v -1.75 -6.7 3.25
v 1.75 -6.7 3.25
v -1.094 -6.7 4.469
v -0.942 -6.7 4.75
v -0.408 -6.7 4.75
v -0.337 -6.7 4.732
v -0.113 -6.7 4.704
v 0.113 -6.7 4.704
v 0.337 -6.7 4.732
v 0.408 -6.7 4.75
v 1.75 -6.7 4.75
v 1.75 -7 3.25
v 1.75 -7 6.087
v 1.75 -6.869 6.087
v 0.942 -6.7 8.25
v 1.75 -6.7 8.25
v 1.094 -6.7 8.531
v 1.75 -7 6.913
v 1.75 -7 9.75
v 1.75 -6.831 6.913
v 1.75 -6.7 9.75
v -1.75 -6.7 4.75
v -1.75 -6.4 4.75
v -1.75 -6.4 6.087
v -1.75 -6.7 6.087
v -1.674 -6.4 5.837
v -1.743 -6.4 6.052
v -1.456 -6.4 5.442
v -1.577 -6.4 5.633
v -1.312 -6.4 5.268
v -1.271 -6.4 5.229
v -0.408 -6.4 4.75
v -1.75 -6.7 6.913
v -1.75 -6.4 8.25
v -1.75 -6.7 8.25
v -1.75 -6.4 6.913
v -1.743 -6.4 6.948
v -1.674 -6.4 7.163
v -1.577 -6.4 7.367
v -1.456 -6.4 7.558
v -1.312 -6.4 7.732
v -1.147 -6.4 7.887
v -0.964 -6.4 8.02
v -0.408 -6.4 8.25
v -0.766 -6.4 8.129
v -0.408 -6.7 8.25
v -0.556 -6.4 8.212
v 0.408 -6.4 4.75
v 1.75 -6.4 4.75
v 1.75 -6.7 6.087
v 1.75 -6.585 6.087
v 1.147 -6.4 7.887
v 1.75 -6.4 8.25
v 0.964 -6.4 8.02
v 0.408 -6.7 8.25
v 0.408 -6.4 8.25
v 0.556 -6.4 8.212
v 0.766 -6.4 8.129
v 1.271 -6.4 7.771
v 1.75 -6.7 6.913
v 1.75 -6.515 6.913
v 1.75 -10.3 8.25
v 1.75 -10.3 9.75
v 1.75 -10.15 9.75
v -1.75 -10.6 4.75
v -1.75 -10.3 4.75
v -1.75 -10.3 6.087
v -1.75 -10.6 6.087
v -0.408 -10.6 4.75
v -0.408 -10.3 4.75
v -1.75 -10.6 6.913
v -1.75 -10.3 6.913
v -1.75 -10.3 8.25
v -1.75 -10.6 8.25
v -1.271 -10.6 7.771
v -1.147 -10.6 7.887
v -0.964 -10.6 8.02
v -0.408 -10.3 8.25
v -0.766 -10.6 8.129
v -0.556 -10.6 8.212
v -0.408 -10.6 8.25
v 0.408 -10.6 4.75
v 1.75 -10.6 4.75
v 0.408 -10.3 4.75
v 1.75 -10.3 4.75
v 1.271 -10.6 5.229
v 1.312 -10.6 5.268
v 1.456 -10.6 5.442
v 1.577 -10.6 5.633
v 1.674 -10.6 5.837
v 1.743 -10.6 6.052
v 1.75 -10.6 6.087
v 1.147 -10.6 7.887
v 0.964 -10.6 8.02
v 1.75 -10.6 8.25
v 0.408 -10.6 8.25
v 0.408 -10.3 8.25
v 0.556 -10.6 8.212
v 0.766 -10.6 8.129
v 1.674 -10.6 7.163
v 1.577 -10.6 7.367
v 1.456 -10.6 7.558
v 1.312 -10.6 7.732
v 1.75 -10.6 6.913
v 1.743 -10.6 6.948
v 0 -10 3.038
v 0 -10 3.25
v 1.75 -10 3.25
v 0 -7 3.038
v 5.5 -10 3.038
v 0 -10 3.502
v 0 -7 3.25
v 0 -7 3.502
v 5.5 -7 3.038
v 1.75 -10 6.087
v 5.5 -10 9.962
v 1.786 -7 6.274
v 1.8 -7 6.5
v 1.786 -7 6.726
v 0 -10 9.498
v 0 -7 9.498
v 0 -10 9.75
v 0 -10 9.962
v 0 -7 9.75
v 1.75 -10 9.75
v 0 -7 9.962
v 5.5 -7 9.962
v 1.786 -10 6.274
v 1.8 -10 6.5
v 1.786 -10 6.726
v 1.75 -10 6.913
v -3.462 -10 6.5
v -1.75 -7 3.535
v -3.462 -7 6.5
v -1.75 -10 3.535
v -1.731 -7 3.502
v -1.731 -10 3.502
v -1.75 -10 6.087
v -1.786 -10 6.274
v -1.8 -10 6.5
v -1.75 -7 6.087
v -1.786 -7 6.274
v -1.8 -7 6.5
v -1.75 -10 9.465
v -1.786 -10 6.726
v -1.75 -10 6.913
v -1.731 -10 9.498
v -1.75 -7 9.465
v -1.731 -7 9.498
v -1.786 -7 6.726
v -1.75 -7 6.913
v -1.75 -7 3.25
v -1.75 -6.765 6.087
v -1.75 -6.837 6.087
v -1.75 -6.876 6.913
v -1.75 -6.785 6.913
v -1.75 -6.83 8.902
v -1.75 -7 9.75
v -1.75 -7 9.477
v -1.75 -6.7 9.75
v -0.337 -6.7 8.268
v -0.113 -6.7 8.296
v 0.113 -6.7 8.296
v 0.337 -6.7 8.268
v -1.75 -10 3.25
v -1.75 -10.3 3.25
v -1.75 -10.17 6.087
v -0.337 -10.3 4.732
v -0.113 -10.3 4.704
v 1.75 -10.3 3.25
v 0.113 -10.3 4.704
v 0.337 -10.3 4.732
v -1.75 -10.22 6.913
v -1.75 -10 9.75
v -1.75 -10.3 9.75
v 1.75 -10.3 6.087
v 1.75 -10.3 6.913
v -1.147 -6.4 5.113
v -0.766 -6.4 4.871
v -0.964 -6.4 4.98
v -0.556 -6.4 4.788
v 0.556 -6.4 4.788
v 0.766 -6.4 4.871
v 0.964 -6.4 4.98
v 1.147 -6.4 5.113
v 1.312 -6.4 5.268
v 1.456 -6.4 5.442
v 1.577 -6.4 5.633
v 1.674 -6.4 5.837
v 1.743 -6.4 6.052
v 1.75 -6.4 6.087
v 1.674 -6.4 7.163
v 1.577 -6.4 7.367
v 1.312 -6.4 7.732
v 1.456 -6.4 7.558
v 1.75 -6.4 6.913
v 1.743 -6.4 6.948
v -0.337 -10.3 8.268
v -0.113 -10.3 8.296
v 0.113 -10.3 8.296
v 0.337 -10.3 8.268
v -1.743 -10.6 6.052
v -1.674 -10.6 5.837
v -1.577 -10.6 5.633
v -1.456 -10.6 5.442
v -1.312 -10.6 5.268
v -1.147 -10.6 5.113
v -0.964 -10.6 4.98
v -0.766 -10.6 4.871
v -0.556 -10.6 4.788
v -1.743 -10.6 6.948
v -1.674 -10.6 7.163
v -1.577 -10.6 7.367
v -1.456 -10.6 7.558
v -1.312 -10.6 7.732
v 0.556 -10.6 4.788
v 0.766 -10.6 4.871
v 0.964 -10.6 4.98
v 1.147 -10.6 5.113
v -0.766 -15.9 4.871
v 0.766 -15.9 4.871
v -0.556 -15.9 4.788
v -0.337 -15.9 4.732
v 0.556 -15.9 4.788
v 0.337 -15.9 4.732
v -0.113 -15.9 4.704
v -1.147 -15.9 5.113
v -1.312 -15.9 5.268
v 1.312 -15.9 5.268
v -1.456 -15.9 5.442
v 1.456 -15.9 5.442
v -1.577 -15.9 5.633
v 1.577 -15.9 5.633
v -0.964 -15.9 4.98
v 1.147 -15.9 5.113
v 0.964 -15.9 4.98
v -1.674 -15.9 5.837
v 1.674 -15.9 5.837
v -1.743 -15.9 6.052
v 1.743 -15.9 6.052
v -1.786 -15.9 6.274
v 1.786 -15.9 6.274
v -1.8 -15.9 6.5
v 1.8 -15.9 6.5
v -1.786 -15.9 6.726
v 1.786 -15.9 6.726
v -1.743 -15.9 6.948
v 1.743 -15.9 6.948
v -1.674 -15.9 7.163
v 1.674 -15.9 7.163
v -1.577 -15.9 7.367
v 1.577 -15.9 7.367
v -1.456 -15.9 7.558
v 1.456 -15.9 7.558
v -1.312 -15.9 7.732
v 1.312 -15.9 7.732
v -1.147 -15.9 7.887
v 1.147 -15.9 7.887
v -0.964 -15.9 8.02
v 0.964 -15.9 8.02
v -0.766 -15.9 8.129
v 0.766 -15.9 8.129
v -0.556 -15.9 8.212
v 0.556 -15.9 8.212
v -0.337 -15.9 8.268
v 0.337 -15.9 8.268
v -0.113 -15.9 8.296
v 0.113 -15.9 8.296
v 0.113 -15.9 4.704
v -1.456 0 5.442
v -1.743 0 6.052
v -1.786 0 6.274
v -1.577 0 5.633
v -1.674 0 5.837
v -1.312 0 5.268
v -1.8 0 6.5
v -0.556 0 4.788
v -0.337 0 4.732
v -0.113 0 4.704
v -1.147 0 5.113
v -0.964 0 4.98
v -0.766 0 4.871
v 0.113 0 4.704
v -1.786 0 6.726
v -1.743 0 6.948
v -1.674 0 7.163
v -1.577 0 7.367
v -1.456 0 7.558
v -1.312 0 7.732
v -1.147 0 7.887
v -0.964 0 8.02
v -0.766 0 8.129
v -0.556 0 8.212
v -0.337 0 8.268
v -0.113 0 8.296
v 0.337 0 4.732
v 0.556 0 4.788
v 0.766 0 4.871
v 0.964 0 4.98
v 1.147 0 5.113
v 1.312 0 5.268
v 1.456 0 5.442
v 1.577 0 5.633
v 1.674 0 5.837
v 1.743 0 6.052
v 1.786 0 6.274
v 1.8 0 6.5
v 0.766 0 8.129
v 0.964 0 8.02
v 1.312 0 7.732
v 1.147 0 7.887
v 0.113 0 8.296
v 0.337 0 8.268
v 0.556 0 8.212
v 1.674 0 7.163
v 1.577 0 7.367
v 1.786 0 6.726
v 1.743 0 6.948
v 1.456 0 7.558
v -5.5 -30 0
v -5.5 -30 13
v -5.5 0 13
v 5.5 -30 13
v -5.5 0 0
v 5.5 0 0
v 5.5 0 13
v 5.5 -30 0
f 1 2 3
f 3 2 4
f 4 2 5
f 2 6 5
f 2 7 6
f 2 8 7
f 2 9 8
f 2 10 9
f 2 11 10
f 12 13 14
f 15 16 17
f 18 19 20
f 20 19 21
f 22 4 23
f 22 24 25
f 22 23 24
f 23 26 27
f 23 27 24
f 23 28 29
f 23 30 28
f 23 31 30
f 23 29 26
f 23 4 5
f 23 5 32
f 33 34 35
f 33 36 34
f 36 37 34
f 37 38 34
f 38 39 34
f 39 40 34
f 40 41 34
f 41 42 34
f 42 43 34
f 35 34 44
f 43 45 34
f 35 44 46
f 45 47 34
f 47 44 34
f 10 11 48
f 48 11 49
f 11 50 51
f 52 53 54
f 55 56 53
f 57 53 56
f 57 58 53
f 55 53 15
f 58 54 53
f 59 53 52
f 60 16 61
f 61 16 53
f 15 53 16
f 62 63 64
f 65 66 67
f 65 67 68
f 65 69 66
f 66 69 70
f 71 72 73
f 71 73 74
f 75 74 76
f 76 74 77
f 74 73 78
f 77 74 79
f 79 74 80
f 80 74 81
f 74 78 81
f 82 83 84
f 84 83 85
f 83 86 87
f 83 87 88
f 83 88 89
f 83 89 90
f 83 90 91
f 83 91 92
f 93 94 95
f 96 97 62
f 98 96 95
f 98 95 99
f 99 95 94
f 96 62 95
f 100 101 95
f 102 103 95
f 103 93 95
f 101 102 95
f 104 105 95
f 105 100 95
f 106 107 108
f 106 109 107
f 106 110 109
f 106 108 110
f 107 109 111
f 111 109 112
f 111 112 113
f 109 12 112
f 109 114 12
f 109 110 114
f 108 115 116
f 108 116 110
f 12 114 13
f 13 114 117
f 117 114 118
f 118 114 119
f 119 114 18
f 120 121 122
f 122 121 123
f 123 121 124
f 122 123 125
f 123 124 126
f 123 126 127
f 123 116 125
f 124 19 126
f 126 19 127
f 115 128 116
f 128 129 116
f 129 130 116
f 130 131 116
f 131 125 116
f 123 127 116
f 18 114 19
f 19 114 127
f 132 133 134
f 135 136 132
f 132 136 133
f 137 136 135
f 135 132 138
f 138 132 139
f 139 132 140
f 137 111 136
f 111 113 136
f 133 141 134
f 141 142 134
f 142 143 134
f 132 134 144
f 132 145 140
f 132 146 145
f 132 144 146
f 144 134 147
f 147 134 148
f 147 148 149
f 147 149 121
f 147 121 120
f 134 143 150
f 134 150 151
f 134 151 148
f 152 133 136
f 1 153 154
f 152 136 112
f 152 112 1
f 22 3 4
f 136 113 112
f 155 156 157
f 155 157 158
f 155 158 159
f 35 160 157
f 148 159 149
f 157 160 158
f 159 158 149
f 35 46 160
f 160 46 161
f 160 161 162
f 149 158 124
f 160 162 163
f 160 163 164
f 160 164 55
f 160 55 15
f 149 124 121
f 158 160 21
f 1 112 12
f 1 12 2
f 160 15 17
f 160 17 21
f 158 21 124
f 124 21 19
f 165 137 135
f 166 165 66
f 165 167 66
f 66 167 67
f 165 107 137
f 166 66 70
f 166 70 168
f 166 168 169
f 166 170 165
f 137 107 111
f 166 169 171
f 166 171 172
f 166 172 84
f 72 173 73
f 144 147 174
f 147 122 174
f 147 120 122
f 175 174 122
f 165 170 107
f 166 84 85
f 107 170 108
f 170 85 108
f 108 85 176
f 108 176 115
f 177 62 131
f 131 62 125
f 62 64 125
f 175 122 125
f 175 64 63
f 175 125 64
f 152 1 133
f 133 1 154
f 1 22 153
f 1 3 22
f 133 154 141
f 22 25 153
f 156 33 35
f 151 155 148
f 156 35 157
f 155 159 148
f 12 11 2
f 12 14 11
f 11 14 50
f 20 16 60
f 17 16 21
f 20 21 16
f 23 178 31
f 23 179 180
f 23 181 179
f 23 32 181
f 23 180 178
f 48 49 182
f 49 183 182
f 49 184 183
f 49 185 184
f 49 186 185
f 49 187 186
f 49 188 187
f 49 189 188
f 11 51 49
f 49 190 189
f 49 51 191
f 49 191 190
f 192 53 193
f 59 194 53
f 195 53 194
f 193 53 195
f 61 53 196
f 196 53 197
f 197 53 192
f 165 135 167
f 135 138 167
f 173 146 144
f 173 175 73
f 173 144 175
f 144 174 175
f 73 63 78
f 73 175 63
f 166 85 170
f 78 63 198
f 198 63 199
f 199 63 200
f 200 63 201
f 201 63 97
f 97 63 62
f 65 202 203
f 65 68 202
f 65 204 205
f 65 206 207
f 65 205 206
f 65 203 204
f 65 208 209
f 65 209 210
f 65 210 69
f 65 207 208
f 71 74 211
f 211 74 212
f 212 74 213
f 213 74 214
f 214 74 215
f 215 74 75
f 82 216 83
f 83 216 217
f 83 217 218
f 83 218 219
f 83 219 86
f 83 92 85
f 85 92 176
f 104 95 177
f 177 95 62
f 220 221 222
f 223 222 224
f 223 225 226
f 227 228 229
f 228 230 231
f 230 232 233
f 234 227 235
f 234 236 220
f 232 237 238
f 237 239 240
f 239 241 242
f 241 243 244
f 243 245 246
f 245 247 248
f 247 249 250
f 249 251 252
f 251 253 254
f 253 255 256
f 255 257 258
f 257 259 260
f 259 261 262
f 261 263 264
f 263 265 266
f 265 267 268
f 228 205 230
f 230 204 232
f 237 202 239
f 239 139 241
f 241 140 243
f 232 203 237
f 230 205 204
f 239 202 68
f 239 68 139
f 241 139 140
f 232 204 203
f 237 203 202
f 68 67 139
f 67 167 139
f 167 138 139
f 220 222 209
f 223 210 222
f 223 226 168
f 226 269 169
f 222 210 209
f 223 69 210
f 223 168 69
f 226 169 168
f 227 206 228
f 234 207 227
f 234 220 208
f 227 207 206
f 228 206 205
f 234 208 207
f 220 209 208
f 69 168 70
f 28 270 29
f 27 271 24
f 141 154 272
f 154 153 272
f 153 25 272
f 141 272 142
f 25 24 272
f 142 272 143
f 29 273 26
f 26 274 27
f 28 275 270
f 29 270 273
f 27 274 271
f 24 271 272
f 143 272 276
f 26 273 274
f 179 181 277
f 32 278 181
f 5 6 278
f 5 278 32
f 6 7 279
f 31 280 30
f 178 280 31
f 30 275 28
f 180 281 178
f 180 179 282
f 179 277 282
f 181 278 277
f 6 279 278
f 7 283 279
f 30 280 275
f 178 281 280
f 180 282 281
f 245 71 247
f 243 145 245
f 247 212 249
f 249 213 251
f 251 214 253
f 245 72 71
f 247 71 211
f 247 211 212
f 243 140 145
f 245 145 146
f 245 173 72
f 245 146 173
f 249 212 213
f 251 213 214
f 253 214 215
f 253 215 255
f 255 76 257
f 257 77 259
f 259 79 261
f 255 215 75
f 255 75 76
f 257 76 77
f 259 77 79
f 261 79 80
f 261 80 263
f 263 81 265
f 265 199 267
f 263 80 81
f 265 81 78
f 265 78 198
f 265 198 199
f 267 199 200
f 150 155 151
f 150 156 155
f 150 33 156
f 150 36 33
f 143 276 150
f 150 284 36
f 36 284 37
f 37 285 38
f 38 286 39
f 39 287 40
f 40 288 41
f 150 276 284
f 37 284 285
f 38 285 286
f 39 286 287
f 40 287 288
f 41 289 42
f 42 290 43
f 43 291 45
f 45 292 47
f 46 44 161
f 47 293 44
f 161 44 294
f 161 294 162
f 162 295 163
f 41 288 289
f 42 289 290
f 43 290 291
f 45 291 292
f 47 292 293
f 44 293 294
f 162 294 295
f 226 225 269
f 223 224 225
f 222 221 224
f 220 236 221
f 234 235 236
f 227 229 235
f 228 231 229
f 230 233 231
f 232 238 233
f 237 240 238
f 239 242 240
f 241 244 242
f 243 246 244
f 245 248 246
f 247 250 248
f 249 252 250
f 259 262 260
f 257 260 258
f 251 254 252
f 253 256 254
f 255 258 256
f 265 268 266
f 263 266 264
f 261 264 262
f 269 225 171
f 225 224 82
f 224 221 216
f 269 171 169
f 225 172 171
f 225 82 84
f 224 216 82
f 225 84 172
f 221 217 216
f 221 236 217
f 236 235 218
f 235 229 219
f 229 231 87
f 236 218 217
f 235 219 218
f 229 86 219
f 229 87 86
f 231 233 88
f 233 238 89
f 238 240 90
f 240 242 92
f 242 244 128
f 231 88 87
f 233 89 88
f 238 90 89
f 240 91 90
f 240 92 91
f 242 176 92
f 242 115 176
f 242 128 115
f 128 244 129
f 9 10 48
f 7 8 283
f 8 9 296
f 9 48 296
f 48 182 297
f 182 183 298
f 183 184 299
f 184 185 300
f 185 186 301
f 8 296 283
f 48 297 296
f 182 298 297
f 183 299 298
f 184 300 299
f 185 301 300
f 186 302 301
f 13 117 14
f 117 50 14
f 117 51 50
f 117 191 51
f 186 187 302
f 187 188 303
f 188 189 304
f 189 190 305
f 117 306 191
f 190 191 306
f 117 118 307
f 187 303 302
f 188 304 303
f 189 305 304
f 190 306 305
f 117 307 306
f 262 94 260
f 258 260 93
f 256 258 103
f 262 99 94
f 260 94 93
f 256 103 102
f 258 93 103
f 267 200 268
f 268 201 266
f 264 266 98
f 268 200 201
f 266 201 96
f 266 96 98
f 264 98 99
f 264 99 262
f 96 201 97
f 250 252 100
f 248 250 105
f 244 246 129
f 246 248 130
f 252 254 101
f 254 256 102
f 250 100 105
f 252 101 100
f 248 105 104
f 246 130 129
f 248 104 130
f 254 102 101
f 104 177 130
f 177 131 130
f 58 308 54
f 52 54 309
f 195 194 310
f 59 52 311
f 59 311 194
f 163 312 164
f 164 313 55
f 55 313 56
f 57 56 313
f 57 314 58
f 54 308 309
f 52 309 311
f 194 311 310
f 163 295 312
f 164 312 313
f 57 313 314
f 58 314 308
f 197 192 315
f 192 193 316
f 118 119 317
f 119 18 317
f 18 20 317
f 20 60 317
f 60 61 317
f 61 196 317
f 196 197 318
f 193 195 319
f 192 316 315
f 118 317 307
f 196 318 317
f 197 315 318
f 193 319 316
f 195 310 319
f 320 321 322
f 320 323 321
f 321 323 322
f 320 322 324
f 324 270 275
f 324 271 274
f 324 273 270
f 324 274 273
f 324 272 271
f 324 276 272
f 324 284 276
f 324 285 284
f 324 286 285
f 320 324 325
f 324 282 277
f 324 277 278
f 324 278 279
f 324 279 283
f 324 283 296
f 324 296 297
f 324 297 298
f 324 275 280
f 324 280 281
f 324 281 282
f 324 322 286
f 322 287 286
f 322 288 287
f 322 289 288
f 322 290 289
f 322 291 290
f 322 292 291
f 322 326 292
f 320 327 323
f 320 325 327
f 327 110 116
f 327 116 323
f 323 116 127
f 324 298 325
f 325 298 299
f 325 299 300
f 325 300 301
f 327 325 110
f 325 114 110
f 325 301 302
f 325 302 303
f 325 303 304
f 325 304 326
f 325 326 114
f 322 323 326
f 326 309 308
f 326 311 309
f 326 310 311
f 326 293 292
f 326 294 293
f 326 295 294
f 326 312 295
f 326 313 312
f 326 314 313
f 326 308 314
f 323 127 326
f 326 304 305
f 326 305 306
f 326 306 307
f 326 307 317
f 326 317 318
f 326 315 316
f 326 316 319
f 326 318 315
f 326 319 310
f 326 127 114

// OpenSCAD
$fn = 50;

difference() {
	union() {
		translate(v = [0, 0, 4.5]) {
			rotate(a = [0, 0, 0]) {
				difference() {
					union() {
						translate(v = [-5.5, -30.0, -4.5]) {
							cube(size = [11.0, 30.0, 13.0]);
						}
					}
					union() {
						translate(v = [0, -7.0, 2.0]) {
							rotate(a = [90, 0, 0]) {
								difference() {
									union() {
										translate(v = [-1.75, -3.25, -0.3]) {
											cube(size = [3.5, 6.5, 0.3]);
										}
										translate(v = [-1.75, -1.75, -0.6]) {
											cube(size = [3.5, 3.5, 0.3]);
										}
										translate(v = [-1.75, -3.25, 3]) {
											cube(size = [3.5, 6.5, 0.3]);
										}
										translate(v = [-1.75, -1.75, 3.3]) {
											cube(size = [3.5, 3.5, 0.3]);
										}
										translate(v = [0.0, -3.4619999999999997, 0]) {
											cube(size = [20, 6.9239999999999995, 3]);
										}
										linear_extrude(height = 3) {
											polygon(points = [[3.4619999999999997, 0.0], [1.7310000000000003, 2.9981799479017264], [-1.7309999999999992, 2.9981799479017264], [-3.4619999999999997, 4.2397272186481365e-16], [-1.7310000000000014, -2.998179947901726], [1.7309999999999977, -2.9981799479017277]]);
										}
										translate(v = [-1.75, -3.25, -0.3]) {
											cube(size = [3.5, 6.5, 0.3]);
										}
										translate(v = [-1.75, -1.75, -0.6]) {
											cube(size = [3.5, 3.5, 0.3]);
										}
										translate(v = [-1.75, -3.25, 3]) {
											cube(size = [3.5, 6.5, 0.3]);
										}
										translate(v = [-1.75, -1.75, 3.3]) {
											cube(size = [3.5, 3.5, 0.3]);
										}
										translate(v = [-1.75, -3.25, -0.3]) {
											cube(size = [3.5, 6.5, 0.3]);
										}
										translate(v = [-1.75, -1.75, -0.6]) {
											cube(size = [3.5, 3.5, 0.3]);
										}
										translate(v = [-1.75, -3.25, 3]) {
											cube(size = [3.5, 6.5, 0.3]);
										}
										translate(v = [-1.75, -1.75, 3.3]) {
											cube(size = [3.5, 3.5, 0.3]);
										}
									}
									union();
								}
							}
						}
						translate(v = [0, 0.1, 2.0]) {
							rotate(a = [90, 0, 0]) {
								cylinder(h = 16, r = 1.8);
							}
						}
					}
				}
			}
		}
	}
	union();
}
